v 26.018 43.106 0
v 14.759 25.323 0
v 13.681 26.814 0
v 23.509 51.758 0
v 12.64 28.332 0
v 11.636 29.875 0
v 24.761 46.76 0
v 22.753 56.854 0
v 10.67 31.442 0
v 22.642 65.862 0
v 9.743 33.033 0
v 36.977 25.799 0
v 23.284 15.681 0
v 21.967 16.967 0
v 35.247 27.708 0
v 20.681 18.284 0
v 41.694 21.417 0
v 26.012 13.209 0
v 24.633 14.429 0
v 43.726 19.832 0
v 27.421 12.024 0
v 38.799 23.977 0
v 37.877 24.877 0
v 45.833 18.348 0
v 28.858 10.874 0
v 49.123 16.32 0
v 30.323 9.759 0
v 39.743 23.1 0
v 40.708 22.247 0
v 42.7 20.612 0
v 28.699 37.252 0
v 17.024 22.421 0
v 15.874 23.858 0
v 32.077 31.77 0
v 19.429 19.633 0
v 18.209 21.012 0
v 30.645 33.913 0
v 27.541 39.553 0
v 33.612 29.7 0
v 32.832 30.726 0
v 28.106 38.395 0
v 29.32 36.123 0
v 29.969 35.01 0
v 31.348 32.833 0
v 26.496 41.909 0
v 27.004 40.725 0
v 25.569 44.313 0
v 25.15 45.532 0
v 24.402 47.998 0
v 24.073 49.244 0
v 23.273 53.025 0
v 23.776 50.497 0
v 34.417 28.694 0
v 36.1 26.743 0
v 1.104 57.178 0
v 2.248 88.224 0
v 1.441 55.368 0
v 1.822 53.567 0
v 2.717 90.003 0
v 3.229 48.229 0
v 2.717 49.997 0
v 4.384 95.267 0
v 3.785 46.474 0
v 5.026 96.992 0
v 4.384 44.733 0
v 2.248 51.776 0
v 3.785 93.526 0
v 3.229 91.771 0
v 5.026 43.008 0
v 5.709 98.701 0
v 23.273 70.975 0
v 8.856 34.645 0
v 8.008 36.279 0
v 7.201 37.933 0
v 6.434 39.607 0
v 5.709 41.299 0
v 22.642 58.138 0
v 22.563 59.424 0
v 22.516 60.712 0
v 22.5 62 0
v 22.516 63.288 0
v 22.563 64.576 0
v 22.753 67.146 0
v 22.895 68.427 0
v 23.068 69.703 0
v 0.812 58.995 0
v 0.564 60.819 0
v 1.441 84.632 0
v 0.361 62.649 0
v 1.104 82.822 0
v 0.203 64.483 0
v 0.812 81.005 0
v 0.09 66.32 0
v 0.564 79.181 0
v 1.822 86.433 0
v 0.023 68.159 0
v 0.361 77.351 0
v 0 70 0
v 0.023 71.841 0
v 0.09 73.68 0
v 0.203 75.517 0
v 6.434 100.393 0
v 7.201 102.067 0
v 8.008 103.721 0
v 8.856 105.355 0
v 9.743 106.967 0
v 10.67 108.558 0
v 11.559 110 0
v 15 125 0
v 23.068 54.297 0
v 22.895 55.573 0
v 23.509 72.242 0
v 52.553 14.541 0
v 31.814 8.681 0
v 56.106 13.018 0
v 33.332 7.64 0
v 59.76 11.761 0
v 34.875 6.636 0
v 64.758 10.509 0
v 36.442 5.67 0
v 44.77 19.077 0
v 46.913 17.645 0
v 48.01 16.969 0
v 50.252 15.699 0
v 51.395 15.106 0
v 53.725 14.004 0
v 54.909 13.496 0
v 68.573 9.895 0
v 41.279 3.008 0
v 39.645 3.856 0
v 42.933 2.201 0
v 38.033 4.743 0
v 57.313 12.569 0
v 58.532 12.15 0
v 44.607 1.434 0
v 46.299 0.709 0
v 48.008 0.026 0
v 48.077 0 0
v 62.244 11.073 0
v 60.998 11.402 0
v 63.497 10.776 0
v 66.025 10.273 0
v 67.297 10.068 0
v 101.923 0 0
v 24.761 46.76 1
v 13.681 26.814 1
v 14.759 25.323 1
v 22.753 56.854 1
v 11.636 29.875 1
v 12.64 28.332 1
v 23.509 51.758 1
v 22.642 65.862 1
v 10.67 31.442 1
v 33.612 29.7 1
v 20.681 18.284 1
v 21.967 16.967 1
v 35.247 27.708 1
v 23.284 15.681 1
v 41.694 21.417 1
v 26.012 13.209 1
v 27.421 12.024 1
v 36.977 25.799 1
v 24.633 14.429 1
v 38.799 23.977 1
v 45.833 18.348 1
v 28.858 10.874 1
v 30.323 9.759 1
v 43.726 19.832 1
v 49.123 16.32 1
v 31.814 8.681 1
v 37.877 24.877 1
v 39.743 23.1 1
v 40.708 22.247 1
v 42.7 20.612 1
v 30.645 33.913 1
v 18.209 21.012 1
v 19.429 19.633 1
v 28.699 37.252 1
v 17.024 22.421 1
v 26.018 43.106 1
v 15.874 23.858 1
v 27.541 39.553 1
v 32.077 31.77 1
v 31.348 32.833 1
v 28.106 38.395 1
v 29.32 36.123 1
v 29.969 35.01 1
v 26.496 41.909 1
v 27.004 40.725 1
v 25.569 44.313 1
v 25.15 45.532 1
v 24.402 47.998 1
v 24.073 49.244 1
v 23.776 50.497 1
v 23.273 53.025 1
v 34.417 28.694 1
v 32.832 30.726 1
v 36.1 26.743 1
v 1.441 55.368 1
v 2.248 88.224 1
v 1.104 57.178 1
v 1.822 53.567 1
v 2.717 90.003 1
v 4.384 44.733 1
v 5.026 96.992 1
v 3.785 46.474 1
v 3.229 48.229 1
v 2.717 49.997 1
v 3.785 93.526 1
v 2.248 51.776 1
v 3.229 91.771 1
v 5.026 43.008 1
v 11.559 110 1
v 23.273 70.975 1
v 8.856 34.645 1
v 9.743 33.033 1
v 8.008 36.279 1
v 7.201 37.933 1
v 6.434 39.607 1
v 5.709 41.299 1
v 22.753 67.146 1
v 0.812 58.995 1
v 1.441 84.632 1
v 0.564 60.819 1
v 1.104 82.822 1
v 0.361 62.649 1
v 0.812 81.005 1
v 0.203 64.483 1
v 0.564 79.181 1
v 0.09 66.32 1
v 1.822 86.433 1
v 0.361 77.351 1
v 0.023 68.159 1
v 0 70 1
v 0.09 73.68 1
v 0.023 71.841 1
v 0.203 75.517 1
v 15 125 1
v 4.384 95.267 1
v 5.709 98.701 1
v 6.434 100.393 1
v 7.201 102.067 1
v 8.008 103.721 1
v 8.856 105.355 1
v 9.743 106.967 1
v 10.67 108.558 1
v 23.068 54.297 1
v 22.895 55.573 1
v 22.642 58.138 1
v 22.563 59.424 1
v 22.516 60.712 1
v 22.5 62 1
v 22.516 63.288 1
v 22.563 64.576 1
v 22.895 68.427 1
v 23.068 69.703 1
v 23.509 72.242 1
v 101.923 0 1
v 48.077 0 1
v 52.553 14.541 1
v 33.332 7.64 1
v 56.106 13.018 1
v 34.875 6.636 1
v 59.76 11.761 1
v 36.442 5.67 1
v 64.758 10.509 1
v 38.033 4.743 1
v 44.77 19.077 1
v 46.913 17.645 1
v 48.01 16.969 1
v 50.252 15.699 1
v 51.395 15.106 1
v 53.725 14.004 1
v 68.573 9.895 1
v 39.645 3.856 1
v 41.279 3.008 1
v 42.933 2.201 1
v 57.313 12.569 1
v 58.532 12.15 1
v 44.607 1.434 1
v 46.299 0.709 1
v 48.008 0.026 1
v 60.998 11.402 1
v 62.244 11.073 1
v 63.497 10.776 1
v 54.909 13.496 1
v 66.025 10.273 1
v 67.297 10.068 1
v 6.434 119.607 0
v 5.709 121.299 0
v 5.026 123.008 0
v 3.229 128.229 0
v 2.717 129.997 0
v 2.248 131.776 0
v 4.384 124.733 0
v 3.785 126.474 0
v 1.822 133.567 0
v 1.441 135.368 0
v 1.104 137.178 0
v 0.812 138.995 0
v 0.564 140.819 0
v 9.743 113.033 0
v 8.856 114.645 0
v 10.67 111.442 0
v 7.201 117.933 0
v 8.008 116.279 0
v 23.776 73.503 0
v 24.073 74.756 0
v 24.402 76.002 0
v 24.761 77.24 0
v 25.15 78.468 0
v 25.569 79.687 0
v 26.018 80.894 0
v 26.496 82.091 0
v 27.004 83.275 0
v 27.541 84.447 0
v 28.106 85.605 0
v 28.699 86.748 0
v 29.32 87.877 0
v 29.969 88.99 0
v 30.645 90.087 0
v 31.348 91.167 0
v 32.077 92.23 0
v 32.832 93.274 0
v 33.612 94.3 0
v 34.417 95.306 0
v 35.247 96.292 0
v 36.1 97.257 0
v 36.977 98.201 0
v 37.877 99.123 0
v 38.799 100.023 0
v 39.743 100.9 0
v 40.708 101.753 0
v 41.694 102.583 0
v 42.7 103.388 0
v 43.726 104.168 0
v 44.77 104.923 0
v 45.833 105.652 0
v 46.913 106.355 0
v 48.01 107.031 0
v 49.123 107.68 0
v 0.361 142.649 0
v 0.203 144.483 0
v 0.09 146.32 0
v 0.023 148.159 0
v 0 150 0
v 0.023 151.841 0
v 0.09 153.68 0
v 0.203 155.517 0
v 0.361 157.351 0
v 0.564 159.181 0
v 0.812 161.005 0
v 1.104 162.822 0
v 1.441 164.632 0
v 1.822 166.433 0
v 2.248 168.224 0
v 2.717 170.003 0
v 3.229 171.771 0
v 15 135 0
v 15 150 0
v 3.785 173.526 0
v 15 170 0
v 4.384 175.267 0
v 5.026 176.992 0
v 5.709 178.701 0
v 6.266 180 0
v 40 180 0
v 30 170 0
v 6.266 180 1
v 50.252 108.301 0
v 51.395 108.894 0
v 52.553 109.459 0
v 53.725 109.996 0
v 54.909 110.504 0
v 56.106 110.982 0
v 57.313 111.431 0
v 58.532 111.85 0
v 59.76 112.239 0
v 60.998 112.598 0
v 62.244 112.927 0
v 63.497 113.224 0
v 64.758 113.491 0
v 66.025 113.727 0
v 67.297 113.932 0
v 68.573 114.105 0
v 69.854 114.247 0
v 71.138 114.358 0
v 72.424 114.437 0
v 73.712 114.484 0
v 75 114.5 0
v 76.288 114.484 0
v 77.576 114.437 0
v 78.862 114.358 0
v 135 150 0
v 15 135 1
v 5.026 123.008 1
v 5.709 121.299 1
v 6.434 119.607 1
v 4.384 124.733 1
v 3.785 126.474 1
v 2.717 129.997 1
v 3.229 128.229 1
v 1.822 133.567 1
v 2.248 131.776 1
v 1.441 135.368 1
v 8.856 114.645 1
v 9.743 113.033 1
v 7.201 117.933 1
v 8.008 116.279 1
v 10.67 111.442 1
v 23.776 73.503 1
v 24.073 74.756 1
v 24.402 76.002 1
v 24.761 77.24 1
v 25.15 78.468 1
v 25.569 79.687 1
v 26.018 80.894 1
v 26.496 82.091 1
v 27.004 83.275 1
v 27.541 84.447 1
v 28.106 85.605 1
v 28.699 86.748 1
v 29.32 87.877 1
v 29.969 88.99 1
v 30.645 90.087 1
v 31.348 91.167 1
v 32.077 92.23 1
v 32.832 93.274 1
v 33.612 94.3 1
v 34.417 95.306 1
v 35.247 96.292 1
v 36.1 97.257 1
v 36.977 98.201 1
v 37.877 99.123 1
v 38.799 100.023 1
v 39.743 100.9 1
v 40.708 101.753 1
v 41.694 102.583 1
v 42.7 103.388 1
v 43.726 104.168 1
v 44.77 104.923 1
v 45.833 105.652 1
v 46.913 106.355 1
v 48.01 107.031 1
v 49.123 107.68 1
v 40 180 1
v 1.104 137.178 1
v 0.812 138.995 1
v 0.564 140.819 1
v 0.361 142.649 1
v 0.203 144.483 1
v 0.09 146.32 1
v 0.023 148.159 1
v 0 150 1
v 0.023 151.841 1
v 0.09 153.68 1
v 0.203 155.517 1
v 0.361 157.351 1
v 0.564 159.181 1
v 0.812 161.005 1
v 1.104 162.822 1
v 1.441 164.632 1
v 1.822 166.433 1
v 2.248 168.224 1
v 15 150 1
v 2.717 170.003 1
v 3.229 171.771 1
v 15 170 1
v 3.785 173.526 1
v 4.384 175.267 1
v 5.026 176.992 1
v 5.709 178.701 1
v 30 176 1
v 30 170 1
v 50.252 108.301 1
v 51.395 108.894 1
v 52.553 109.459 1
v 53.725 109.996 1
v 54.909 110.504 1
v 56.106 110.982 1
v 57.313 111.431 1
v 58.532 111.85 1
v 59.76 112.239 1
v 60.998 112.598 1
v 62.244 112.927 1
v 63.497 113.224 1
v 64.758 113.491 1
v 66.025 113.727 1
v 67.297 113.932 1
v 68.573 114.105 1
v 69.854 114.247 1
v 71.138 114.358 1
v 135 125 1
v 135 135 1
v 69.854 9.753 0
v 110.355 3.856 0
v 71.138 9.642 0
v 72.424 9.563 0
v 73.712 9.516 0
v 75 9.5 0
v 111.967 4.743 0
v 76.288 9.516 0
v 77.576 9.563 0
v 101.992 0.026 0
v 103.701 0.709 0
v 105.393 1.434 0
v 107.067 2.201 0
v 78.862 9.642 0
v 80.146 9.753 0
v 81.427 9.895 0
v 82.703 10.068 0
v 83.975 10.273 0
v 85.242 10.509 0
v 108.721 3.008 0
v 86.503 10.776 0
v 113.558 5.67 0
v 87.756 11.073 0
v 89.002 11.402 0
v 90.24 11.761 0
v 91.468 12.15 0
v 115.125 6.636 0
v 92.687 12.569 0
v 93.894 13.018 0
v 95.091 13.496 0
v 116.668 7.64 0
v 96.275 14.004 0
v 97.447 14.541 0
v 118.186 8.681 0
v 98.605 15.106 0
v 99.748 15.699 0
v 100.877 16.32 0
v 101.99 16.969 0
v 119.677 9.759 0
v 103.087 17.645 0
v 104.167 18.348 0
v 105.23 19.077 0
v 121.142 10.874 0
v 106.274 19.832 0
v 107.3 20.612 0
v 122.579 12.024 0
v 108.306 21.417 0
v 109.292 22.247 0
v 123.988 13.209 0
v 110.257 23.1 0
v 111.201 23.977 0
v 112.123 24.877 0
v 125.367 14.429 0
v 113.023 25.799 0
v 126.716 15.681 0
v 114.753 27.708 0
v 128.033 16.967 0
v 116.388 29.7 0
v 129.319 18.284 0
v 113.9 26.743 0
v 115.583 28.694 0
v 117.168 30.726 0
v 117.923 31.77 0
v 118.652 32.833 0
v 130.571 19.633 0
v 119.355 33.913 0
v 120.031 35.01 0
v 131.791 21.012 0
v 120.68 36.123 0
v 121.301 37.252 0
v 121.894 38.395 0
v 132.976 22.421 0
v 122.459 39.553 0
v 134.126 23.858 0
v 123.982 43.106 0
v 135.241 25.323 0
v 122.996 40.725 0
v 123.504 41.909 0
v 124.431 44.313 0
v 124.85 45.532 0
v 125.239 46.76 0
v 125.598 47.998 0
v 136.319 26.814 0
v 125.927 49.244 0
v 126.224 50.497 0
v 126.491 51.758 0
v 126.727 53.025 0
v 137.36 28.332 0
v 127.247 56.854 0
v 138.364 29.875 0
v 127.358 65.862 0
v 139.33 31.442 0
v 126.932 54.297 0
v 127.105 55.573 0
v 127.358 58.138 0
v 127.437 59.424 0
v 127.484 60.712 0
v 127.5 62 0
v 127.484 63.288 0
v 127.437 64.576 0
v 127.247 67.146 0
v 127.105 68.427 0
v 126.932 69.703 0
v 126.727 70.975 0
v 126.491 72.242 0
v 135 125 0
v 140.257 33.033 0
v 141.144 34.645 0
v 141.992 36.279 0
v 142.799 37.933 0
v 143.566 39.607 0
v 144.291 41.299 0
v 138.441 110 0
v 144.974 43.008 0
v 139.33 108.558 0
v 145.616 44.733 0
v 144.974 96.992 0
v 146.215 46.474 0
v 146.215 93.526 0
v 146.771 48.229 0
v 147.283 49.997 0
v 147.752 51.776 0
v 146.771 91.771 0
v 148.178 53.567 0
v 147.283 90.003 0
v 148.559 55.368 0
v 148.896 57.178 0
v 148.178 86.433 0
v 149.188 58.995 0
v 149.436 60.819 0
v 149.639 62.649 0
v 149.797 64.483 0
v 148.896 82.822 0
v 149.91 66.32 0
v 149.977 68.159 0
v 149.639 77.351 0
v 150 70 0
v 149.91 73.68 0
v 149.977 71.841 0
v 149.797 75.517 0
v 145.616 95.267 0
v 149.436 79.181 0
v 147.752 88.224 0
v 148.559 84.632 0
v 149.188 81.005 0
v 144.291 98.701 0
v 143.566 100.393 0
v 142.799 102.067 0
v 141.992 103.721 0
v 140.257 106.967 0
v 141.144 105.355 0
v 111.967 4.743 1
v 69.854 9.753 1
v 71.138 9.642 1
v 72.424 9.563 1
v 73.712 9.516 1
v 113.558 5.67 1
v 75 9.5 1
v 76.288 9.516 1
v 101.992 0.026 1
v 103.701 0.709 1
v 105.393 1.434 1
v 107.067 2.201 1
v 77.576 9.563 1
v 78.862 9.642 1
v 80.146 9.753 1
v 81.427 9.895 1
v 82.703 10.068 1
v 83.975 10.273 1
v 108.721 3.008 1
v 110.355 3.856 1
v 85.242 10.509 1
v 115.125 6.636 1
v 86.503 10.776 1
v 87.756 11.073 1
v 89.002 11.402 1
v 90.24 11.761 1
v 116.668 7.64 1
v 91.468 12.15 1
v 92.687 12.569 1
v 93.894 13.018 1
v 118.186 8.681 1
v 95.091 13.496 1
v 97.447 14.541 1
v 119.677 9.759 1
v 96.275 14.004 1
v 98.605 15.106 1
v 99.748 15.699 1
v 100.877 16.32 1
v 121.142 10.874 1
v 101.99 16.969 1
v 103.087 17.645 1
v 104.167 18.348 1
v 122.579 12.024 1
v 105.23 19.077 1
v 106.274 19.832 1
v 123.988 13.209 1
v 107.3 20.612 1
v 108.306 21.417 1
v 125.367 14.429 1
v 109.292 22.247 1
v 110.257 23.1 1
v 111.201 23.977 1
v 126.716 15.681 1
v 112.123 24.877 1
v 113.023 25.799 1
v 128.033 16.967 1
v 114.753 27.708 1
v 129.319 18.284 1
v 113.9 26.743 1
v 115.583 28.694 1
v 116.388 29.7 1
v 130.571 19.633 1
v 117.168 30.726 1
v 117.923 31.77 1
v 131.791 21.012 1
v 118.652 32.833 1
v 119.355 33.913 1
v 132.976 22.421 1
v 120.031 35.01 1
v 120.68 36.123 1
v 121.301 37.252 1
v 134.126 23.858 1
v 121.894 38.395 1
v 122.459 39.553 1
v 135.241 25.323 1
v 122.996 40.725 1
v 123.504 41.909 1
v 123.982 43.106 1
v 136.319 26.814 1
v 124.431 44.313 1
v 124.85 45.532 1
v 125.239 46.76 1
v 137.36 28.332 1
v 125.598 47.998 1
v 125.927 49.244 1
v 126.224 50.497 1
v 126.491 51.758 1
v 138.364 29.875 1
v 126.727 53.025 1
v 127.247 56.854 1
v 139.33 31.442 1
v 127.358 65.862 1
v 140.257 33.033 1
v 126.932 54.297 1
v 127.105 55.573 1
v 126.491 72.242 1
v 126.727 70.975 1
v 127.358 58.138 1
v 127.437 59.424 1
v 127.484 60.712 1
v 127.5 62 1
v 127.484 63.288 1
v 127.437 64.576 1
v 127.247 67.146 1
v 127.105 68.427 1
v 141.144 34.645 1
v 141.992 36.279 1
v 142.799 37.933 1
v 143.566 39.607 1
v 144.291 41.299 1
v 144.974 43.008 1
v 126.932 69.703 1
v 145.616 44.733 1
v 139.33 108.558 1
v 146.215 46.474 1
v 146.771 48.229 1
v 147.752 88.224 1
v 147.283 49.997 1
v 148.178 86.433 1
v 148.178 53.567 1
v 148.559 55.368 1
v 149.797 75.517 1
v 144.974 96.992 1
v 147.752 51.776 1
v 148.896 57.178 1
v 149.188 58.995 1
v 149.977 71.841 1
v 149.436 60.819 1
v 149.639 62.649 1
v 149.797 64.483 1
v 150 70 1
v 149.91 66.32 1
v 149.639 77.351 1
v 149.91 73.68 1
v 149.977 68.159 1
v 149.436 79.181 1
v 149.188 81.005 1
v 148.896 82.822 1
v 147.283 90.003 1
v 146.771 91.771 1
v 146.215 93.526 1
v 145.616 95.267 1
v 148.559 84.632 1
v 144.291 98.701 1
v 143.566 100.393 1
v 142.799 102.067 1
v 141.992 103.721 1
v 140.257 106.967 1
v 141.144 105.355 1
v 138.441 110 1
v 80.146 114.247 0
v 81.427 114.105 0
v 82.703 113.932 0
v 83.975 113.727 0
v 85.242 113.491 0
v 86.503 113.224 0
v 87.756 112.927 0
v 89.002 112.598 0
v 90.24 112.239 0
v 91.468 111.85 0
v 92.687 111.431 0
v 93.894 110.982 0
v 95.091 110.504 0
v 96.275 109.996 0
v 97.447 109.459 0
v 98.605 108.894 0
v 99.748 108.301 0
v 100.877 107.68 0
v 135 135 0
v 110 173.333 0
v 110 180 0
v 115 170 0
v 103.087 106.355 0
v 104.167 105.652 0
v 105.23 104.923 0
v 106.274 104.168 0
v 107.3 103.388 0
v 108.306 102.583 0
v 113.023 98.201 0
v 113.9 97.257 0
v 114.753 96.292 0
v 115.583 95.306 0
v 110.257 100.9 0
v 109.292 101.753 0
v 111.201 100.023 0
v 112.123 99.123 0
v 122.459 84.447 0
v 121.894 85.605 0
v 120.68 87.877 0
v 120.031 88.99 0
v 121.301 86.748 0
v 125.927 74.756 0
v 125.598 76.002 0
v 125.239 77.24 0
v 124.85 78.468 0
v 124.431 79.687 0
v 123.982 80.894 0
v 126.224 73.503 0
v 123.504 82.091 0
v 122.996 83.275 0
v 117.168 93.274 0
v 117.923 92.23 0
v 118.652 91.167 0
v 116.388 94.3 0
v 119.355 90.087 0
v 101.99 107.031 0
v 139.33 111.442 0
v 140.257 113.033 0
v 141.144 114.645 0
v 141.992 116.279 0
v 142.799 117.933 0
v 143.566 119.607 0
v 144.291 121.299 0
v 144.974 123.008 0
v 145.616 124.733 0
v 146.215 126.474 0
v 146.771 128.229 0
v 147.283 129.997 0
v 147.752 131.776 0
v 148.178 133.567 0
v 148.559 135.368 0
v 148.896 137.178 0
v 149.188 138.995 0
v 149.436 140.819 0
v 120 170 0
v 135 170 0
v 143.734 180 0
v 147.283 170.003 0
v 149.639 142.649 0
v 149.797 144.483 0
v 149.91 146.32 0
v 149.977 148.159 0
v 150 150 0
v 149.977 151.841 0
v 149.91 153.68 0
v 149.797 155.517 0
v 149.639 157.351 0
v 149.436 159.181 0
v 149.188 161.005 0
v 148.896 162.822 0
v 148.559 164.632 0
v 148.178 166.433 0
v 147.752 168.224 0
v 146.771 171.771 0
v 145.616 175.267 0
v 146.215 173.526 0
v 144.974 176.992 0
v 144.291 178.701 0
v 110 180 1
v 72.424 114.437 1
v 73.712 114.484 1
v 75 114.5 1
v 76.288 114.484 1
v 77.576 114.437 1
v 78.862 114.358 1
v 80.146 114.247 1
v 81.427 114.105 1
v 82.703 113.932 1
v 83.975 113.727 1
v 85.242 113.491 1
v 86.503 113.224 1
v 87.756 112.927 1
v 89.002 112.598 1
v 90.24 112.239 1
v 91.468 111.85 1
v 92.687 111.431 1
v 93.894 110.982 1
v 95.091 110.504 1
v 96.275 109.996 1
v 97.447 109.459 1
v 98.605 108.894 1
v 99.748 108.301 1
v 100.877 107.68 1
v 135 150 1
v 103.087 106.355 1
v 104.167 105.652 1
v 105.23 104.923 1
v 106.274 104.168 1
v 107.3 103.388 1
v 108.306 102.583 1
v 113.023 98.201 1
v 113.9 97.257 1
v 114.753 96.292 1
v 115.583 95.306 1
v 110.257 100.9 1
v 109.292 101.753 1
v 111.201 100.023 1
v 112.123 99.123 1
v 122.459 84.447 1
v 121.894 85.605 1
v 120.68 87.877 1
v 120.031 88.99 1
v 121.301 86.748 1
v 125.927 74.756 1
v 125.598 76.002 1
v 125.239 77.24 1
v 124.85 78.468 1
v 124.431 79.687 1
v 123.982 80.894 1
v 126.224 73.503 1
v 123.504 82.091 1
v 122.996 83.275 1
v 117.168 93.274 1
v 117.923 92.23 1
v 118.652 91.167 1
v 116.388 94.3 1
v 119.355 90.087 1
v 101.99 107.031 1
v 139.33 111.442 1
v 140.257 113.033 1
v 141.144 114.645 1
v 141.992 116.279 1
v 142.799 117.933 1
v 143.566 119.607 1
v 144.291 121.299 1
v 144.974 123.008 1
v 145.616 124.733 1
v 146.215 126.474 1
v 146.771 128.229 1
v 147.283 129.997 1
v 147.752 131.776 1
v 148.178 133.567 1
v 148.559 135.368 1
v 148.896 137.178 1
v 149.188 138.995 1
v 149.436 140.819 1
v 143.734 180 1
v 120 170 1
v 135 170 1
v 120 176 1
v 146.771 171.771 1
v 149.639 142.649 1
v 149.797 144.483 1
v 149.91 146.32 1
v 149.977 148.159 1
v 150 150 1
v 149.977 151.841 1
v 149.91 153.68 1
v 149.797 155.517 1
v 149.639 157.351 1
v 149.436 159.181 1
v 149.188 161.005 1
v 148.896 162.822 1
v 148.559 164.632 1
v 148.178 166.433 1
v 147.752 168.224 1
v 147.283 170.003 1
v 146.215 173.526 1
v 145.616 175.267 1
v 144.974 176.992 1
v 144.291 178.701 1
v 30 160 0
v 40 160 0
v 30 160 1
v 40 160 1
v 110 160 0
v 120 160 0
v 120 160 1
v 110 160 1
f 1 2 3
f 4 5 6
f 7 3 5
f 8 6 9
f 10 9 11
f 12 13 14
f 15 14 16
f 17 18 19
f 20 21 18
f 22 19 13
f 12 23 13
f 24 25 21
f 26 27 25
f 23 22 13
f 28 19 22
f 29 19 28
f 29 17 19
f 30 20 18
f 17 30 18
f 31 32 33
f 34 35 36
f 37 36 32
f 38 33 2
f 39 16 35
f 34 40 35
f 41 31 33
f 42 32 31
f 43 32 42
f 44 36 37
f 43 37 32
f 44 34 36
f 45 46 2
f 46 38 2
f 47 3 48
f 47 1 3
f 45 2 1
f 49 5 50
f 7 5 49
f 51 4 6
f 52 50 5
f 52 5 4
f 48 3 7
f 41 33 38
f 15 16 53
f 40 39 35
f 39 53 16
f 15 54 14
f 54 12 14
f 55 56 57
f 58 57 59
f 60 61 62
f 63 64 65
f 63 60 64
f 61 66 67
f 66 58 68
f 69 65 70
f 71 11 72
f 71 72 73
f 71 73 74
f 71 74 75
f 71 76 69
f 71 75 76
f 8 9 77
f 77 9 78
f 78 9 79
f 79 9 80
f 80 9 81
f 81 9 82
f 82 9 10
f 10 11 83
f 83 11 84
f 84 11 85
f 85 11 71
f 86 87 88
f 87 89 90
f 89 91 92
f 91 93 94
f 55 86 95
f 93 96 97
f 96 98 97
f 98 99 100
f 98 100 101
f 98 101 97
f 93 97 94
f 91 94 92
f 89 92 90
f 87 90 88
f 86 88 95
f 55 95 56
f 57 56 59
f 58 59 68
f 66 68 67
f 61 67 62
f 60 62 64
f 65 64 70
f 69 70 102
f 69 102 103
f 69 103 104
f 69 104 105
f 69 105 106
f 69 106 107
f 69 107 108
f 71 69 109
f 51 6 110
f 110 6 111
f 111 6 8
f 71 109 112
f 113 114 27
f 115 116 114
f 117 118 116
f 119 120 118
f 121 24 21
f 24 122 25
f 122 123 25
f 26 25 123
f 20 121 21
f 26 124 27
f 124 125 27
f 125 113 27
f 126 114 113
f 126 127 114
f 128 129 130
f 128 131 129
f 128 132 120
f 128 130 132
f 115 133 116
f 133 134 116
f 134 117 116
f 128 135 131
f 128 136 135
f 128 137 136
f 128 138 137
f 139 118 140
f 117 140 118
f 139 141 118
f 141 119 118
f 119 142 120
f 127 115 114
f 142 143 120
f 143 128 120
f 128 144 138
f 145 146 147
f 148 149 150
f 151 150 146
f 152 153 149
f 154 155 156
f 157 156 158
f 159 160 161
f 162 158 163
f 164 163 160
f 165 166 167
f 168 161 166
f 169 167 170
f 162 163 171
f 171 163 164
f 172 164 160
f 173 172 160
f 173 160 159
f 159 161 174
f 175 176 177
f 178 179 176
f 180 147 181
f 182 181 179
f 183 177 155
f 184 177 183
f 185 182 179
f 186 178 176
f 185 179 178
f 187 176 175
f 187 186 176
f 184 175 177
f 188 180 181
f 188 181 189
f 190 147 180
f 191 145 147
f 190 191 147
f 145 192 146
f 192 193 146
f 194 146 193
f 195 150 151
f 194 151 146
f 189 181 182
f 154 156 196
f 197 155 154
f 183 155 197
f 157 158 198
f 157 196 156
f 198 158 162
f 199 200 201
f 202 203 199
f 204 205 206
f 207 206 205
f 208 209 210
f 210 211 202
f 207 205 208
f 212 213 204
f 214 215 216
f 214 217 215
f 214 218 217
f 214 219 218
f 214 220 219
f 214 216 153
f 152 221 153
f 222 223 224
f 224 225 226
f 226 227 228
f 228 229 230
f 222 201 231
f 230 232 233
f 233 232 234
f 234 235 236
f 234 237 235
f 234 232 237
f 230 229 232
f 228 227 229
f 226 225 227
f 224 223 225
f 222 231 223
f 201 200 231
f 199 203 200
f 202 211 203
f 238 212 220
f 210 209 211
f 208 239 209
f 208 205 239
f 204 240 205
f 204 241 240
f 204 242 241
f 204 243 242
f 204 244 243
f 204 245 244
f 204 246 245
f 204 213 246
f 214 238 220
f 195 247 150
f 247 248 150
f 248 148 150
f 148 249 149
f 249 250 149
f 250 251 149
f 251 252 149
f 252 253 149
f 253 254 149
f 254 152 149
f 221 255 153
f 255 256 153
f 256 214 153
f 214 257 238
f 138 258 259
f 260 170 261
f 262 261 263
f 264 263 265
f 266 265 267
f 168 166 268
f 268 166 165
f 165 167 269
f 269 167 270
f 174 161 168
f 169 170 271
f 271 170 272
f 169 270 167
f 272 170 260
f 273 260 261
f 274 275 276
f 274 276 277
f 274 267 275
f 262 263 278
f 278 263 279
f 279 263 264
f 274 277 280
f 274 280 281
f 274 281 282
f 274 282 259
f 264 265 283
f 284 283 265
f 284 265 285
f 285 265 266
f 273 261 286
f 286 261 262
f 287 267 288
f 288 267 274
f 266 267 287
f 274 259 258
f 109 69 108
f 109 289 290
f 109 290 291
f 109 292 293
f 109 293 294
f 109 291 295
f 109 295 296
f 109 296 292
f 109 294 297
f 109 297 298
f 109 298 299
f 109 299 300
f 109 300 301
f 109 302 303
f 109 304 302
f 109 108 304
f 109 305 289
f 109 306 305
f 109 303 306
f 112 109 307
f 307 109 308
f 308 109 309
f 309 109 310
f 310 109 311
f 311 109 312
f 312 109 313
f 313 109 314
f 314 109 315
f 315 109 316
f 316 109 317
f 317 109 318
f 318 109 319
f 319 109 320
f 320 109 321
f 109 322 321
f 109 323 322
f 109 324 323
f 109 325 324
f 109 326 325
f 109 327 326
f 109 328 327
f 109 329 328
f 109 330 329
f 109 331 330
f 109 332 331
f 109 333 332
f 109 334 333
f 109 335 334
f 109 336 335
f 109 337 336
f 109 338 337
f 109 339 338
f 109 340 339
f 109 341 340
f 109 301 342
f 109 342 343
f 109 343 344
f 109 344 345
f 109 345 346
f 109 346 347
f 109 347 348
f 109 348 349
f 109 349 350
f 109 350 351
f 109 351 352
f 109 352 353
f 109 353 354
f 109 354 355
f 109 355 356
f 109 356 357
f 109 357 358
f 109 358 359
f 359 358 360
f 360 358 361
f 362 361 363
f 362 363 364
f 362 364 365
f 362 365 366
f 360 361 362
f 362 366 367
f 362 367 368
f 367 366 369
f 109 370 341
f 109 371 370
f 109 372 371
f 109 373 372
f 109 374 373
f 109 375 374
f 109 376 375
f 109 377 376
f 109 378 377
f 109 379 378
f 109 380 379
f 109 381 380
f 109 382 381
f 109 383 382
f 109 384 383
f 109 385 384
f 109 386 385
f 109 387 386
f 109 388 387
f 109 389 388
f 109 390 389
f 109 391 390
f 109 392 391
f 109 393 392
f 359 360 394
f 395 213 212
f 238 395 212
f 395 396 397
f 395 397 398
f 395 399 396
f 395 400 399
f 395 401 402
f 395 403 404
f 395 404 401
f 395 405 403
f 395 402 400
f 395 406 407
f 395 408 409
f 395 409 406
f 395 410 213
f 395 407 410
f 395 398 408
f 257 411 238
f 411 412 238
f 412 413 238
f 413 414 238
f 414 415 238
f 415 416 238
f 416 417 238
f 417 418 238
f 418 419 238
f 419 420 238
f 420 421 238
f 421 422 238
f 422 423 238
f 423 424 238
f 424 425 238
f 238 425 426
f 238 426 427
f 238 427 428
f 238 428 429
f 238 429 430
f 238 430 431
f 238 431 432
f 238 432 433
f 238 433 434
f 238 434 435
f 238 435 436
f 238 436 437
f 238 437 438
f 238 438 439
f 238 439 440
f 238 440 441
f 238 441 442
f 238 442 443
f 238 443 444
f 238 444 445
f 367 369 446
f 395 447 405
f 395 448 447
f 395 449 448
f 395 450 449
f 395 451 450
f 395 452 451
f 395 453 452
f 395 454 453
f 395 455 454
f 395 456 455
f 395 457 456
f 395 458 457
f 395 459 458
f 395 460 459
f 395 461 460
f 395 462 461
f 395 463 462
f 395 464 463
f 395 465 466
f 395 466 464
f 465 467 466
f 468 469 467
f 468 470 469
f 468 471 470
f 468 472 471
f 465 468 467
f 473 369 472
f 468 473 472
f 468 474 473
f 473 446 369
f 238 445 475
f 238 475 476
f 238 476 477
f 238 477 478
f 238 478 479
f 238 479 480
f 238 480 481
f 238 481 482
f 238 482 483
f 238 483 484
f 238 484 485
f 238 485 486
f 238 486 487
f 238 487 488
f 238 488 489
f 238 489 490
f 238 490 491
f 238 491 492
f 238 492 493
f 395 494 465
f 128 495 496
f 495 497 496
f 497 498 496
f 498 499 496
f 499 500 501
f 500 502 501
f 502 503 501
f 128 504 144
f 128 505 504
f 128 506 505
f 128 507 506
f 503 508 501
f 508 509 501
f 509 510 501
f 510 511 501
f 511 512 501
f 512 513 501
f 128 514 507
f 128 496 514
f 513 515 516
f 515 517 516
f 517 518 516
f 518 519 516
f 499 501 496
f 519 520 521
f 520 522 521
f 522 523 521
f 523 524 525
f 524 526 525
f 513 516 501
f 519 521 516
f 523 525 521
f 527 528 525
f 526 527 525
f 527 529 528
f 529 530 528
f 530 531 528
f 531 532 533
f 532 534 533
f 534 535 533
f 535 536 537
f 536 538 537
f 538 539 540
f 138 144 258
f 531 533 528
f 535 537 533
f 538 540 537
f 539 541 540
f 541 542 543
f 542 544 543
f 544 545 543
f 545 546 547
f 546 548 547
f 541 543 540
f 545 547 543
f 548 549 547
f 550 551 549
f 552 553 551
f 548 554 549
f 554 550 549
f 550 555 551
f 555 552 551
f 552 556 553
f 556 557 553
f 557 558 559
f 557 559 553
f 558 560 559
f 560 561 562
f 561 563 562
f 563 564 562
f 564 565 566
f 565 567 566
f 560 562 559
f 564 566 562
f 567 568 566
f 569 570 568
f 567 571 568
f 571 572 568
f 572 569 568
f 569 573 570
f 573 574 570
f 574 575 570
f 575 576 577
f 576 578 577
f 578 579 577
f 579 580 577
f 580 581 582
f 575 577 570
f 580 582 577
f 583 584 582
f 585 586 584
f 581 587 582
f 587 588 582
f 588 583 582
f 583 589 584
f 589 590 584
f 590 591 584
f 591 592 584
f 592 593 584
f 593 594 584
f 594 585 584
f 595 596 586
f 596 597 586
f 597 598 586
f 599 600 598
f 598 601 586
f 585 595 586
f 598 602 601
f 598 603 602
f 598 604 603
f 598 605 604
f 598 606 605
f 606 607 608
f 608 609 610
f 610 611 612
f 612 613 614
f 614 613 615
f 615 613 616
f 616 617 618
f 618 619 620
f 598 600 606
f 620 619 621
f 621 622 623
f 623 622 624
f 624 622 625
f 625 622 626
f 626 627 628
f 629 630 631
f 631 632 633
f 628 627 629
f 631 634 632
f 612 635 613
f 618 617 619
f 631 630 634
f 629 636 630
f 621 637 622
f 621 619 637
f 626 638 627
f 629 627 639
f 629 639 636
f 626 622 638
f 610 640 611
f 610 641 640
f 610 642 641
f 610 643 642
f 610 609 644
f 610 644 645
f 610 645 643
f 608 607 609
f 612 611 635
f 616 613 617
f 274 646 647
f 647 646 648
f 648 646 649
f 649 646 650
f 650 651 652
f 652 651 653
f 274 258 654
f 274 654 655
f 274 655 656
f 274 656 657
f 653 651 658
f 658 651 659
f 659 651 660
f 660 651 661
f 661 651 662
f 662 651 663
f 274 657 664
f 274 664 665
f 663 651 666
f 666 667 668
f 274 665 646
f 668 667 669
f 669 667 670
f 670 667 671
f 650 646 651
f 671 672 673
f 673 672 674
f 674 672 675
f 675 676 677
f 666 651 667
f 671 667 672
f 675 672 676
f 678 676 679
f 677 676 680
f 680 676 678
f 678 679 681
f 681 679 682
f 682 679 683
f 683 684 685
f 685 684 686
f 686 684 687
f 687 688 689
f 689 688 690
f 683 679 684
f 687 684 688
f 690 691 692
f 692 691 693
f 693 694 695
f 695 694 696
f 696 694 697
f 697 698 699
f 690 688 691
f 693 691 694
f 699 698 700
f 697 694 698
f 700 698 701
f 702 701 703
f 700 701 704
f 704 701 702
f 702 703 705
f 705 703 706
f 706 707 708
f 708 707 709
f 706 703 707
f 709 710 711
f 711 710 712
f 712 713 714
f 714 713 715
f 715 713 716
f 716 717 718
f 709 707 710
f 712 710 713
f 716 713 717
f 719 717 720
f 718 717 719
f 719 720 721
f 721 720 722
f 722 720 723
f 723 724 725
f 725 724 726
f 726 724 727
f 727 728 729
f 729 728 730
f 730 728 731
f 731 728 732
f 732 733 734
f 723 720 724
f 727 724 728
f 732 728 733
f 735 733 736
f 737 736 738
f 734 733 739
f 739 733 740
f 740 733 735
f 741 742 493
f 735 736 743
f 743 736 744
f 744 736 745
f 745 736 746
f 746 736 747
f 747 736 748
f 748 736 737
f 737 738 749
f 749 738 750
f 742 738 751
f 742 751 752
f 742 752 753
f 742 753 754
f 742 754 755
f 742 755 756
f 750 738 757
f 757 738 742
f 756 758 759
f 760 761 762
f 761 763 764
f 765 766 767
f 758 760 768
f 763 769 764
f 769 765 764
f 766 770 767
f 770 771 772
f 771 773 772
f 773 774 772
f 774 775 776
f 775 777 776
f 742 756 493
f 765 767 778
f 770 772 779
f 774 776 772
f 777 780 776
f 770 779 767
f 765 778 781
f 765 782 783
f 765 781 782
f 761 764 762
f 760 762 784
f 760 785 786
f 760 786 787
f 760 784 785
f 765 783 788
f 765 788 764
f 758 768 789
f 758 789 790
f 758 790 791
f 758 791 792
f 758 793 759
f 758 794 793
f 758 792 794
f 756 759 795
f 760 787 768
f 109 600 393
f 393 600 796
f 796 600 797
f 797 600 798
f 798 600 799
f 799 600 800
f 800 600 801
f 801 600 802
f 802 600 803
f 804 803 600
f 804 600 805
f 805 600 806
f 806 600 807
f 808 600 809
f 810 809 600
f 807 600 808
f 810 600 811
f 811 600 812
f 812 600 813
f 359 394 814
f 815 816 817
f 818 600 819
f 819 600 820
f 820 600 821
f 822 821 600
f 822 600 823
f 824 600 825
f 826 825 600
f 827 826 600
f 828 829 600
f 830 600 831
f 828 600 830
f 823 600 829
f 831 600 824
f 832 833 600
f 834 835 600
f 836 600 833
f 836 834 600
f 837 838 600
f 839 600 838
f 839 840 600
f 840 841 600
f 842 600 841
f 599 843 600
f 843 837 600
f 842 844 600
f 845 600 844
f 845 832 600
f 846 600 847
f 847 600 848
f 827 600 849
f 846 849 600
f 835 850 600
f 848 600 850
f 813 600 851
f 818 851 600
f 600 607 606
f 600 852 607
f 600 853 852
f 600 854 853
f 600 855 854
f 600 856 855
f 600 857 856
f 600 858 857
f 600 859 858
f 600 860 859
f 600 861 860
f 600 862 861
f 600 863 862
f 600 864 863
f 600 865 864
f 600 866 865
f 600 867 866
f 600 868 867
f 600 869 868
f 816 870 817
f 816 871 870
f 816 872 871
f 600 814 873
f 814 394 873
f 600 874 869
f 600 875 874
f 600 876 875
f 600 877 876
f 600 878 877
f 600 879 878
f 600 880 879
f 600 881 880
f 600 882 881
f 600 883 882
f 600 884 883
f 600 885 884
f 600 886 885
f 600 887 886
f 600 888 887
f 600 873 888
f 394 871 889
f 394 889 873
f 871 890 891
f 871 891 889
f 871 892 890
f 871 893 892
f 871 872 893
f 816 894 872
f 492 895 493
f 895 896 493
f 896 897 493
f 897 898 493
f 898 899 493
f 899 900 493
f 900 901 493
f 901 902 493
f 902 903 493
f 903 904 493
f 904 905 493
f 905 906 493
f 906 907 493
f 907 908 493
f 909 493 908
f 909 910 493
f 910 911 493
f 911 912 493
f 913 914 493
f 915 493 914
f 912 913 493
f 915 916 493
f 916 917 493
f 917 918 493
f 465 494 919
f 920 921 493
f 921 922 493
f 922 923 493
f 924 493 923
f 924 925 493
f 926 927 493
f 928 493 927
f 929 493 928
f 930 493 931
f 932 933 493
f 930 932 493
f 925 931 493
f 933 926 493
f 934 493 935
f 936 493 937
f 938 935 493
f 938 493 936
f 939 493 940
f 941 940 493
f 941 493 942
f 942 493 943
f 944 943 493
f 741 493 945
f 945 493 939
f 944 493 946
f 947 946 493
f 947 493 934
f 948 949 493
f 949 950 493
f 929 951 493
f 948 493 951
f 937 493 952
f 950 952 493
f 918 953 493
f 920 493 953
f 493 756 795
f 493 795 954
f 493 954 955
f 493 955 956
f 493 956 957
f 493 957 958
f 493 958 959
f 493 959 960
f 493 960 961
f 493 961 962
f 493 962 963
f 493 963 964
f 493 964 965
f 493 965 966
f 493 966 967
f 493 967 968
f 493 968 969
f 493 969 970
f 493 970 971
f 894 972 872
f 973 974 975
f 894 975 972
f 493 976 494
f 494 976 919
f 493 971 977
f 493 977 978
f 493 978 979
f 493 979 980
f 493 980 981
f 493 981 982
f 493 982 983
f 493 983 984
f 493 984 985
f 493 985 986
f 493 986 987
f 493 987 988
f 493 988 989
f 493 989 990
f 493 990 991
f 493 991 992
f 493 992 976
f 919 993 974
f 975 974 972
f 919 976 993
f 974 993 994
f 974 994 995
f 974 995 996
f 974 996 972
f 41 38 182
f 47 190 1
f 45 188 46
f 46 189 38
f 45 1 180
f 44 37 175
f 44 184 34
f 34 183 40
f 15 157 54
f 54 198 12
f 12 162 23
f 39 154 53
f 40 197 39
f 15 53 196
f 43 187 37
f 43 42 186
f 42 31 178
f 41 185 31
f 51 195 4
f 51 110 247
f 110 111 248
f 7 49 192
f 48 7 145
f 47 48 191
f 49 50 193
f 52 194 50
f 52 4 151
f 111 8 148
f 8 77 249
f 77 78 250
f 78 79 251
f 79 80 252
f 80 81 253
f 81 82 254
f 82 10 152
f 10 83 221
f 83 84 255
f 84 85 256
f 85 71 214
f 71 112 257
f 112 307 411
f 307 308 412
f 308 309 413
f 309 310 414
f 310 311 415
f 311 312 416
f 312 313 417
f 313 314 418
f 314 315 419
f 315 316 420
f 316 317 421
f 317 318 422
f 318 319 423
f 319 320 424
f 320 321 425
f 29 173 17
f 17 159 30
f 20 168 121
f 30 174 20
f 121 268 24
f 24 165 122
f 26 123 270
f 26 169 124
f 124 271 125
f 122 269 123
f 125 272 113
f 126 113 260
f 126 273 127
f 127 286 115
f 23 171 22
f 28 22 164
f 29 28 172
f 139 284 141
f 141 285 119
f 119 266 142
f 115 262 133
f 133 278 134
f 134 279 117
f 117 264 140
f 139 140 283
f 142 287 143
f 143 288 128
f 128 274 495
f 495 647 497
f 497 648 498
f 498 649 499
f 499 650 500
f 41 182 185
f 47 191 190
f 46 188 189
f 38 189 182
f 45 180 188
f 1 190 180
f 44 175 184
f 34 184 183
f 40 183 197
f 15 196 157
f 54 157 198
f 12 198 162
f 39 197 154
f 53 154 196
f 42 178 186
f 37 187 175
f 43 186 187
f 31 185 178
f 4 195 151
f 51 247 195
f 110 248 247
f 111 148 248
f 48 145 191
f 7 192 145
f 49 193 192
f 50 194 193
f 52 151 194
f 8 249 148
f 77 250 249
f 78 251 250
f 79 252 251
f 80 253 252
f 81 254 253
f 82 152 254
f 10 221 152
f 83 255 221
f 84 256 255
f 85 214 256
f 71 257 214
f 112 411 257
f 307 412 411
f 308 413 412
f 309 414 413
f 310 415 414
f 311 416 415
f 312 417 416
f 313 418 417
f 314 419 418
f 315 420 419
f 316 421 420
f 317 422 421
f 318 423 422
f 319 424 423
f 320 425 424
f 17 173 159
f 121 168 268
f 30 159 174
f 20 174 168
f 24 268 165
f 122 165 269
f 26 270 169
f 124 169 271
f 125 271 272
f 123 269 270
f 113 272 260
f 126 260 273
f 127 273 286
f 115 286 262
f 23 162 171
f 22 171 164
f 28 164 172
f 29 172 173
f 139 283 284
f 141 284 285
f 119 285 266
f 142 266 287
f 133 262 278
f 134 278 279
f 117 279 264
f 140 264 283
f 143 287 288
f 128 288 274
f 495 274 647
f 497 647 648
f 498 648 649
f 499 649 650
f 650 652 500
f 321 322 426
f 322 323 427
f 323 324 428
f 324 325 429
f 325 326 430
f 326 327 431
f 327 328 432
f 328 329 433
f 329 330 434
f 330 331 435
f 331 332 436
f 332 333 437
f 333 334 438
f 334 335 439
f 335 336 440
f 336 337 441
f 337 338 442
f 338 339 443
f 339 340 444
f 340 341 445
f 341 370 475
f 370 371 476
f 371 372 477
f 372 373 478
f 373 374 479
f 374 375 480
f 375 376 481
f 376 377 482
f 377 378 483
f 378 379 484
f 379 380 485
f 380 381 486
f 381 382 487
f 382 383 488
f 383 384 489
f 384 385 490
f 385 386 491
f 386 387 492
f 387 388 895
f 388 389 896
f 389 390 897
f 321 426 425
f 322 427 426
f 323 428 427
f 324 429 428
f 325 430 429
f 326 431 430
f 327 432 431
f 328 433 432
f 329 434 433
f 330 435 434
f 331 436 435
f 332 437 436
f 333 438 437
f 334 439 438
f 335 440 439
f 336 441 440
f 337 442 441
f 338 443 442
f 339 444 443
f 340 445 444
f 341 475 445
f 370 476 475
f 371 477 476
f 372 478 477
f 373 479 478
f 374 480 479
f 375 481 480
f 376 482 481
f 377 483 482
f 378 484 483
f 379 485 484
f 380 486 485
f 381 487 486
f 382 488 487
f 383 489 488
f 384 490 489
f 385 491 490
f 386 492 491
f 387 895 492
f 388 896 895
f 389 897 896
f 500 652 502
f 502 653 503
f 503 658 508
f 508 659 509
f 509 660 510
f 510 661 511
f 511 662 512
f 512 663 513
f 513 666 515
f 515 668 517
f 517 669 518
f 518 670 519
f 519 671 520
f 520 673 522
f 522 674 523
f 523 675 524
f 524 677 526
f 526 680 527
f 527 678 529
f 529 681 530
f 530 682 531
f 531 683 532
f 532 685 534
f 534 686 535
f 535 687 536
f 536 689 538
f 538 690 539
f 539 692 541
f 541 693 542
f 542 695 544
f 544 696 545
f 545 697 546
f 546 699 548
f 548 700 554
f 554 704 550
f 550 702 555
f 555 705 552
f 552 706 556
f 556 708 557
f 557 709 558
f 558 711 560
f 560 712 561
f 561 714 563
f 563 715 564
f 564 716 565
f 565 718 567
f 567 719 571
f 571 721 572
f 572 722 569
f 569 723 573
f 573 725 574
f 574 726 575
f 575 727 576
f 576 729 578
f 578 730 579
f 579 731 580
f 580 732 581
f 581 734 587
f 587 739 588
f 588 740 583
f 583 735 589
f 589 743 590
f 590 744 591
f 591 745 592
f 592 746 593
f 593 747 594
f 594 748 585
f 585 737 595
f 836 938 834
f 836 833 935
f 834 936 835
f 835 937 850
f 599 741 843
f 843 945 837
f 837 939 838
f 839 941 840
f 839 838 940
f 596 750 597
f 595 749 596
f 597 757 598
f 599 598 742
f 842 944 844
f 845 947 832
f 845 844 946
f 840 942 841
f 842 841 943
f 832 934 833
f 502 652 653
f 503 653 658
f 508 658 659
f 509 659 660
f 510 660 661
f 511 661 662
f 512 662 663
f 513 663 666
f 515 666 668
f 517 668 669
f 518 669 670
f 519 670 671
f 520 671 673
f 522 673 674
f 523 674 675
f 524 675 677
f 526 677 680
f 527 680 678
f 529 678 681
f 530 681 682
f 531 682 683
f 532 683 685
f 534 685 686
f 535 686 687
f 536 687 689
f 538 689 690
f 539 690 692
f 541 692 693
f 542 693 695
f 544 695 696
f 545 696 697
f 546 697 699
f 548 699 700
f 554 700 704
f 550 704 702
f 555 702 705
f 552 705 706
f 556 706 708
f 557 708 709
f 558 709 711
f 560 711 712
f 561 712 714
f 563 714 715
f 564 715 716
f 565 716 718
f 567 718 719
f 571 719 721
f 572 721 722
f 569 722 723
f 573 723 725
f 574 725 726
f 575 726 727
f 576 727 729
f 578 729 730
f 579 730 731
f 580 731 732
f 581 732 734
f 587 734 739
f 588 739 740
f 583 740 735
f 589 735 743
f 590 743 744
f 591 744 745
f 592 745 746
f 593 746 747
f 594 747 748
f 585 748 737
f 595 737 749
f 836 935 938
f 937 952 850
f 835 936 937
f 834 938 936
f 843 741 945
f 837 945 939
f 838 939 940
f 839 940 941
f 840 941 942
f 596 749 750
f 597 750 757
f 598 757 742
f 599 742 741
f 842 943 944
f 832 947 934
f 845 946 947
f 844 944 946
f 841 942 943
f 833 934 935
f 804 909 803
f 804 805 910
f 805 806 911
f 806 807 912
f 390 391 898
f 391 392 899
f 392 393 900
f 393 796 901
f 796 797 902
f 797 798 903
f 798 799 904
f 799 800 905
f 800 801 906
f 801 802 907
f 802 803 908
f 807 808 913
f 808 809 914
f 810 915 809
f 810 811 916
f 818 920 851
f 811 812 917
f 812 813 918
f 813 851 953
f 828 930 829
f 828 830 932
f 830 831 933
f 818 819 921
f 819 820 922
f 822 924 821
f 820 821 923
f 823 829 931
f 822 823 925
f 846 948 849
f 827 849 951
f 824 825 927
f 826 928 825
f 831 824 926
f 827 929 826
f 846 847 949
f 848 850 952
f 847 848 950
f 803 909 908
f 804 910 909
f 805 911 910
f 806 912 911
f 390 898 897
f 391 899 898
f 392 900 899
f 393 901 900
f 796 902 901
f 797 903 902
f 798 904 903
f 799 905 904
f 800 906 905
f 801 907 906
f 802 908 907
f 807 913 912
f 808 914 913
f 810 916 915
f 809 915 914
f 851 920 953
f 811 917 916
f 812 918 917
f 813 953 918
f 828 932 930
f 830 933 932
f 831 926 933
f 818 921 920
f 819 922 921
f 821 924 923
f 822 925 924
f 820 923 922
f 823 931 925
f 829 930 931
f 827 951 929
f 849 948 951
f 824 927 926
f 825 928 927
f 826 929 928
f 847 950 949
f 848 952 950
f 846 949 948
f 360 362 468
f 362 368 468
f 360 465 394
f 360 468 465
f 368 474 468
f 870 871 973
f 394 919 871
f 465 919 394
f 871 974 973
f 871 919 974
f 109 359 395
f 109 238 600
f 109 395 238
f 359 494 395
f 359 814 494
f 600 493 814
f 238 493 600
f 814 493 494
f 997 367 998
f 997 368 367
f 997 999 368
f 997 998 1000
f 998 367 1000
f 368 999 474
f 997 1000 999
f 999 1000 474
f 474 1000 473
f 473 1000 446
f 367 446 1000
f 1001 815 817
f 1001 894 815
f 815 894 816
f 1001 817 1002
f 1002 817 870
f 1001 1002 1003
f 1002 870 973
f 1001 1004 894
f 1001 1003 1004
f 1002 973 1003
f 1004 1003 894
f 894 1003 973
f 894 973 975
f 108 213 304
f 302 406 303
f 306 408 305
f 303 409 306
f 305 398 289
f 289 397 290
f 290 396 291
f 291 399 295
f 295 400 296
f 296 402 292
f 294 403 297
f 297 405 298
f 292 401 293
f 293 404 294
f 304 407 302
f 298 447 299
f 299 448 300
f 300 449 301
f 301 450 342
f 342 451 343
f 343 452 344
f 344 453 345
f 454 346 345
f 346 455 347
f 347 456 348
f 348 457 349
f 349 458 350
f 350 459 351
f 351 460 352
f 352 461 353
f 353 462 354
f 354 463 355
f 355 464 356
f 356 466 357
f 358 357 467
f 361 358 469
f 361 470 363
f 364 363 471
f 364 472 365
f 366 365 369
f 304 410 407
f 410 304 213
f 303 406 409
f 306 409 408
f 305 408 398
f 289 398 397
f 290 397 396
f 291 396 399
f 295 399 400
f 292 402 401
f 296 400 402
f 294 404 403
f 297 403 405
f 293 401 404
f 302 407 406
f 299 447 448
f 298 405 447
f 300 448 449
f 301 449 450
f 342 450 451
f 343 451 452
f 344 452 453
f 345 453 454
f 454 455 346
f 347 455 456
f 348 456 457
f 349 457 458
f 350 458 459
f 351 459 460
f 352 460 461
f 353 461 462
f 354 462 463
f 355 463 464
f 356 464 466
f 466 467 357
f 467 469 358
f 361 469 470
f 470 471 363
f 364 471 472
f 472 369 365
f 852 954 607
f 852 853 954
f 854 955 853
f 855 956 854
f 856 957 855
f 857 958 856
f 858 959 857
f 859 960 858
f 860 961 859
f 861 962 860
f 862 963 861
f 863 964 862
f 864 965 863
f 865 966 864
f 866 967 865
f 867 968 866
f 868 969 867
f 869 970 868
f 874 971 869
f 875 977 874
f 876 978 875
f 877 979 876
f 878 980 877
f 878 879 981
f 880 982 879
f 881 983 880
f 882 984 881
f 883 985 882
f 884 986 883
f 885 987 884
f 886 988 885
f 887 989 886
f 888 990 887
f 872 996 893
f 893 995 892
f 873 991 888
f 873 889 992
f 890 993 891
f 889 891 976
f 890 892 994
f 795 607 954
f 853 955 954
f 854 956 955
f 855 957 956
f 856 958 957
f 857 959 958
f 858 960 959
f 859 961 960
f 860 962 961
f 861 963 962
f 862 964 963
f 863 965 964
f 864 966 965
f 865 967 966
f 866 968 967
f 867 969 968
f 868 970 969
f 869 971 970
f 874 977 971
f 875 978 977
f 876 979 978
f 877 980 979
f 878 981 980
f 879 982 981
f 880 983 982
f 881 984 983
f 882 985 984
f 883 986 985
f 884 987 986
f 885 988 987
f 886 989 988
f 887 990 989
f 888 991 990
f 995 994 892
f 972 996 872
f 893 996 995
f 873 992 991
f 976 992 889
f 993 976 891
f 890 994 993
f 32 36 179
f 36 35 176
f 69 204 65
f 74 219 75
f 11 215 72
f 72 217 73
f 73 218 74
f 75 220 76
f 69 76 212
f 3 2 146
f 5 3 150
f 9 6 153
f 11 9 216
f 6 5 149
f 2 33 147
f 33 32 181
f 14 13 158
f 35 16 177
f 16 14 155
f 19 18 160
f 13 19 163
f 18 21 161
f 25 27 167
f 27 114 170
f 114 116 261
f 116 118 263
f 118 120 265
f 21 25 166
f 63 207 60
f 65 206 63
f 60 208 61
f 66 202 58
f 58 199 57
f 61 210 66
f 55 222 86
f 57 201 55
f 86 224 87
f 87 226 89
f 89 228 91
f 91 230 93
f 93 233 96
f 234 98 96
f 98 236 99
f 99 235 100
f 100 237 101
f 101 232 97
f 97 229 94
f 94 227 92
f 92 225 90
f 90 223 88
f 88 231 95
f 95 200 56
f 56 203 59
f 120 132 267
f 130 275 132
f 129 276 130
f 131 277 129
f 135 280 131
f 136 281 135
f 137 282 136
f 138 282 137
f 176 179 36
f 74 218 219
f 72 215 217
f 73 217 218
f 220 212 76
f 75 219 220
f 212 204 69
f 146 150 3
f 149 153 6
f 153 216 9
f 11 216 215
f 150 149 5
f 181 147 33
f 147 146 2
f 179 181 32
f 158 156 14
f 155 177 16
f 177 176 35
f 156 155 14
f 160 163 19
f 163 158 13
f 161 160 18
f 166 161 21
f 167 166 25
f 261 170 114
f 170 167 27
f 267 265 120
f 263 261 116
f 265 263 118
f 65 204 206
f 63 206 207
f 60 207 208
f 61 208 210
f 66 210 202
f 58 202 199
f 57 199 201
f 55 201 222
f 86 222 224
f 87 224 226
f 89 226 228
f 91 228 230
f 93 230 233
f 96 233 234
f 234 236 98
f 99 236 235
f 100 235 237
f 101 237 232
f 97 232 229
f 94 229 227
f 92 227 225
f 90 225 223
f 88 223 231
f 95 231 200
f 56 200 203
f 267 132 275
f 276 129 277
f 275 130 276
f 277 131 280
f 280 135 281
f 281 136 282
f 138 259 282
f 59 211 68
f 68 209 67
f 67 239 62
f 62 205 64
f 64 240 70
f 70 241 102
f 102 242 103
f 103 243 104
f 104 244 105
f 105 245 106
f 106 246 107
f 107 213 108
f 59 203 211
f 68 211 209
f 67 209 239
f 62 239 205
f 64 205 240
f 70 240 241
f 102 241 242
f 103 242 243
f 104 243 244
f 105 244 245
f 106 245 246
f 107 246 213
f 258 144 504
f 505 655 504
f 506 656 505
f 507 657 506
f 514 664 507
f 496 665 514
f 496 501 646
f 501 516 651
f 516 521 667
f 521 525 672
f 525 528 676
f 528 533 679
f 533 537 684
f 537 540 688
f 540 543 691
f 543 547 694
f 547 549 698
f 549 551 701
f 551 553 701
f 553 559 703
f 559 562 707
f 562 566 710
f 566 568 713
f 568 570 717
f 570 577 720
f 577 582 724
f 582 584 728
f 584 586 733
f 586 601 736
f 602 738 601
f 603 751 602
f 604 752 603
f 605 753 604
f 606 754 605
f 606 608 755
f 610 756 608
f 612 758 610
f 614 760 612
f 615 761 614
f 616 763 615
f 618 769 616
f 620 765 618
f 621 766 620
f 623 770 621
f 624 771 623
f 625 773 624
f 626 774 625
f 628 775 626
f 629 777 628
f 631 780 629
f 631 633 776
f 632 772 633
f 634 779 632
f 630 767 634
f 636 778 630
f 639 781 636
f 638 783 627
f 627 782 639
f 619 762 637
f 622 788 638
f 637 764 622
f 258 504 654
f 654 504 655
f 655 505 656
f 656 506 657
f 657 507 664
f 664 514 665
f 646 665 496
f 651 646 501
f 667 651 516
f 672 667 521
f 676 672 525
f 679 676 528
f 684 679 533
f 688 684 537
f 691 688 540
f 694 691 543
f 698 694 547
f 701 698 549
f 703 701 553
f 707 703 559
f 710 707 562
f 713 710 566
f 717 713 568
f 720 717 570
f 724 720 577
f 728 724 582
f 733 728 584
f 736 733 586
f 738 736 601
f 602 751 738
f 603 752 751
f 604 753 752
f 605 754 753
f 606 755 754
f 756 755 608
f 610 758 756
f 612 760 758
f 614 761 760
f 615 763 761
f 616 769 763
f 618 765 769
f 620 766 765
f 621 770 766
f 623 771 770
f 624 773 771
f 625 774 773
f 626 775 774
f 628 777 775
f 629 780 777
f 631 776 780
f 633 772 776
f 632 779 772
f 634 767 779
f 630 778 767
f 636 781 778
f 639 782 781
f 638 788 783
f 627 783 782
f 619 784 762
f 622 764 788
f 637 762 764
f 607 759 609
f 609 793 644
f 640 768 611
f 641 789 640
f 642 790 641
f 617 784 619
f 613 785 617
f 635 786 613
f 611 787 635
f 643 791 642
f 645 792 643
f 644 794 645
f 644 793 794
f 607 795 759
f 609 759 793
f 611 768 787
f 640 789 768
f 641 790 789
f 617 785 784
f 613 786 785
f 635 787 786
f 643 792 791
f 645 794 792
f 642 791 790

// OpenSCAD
$fn = 256;
width = 150;

module base() {
  difference() {
    union() {
      cube([width, 180, 1]);
      //translate([(width-30)/2,160,-1]) cube([30,20,5]); 
    }

    translate([width / 2, 62, 0]) translate([0, 0, -1]) cylinder(d=105, h=46);

    translate([(width - 70) / 2, 160, -1]) cube([70, 40, 50]);
    translate([(width - 120) / 2, 150, -1]) cube([120, 20, 50]);

    translate([(width - 120) / 2, 125, -1]) cube([120, 10, 50]);
  }

  translate([(width - 10) / 2 - 40, 160, 0]) cube([10, 20, 1]);
  translate([(width - 10) / 2 + 40, 160, 0]) cube([10, 20, 1]);
}

intersection() {
  base();

  union() {
    translate([width / 2, 150, 0]) cylinder(d=150, h=1);
    translate([width / 2, 70, 0]) cylinder(d=150, h=1);
  }
}
